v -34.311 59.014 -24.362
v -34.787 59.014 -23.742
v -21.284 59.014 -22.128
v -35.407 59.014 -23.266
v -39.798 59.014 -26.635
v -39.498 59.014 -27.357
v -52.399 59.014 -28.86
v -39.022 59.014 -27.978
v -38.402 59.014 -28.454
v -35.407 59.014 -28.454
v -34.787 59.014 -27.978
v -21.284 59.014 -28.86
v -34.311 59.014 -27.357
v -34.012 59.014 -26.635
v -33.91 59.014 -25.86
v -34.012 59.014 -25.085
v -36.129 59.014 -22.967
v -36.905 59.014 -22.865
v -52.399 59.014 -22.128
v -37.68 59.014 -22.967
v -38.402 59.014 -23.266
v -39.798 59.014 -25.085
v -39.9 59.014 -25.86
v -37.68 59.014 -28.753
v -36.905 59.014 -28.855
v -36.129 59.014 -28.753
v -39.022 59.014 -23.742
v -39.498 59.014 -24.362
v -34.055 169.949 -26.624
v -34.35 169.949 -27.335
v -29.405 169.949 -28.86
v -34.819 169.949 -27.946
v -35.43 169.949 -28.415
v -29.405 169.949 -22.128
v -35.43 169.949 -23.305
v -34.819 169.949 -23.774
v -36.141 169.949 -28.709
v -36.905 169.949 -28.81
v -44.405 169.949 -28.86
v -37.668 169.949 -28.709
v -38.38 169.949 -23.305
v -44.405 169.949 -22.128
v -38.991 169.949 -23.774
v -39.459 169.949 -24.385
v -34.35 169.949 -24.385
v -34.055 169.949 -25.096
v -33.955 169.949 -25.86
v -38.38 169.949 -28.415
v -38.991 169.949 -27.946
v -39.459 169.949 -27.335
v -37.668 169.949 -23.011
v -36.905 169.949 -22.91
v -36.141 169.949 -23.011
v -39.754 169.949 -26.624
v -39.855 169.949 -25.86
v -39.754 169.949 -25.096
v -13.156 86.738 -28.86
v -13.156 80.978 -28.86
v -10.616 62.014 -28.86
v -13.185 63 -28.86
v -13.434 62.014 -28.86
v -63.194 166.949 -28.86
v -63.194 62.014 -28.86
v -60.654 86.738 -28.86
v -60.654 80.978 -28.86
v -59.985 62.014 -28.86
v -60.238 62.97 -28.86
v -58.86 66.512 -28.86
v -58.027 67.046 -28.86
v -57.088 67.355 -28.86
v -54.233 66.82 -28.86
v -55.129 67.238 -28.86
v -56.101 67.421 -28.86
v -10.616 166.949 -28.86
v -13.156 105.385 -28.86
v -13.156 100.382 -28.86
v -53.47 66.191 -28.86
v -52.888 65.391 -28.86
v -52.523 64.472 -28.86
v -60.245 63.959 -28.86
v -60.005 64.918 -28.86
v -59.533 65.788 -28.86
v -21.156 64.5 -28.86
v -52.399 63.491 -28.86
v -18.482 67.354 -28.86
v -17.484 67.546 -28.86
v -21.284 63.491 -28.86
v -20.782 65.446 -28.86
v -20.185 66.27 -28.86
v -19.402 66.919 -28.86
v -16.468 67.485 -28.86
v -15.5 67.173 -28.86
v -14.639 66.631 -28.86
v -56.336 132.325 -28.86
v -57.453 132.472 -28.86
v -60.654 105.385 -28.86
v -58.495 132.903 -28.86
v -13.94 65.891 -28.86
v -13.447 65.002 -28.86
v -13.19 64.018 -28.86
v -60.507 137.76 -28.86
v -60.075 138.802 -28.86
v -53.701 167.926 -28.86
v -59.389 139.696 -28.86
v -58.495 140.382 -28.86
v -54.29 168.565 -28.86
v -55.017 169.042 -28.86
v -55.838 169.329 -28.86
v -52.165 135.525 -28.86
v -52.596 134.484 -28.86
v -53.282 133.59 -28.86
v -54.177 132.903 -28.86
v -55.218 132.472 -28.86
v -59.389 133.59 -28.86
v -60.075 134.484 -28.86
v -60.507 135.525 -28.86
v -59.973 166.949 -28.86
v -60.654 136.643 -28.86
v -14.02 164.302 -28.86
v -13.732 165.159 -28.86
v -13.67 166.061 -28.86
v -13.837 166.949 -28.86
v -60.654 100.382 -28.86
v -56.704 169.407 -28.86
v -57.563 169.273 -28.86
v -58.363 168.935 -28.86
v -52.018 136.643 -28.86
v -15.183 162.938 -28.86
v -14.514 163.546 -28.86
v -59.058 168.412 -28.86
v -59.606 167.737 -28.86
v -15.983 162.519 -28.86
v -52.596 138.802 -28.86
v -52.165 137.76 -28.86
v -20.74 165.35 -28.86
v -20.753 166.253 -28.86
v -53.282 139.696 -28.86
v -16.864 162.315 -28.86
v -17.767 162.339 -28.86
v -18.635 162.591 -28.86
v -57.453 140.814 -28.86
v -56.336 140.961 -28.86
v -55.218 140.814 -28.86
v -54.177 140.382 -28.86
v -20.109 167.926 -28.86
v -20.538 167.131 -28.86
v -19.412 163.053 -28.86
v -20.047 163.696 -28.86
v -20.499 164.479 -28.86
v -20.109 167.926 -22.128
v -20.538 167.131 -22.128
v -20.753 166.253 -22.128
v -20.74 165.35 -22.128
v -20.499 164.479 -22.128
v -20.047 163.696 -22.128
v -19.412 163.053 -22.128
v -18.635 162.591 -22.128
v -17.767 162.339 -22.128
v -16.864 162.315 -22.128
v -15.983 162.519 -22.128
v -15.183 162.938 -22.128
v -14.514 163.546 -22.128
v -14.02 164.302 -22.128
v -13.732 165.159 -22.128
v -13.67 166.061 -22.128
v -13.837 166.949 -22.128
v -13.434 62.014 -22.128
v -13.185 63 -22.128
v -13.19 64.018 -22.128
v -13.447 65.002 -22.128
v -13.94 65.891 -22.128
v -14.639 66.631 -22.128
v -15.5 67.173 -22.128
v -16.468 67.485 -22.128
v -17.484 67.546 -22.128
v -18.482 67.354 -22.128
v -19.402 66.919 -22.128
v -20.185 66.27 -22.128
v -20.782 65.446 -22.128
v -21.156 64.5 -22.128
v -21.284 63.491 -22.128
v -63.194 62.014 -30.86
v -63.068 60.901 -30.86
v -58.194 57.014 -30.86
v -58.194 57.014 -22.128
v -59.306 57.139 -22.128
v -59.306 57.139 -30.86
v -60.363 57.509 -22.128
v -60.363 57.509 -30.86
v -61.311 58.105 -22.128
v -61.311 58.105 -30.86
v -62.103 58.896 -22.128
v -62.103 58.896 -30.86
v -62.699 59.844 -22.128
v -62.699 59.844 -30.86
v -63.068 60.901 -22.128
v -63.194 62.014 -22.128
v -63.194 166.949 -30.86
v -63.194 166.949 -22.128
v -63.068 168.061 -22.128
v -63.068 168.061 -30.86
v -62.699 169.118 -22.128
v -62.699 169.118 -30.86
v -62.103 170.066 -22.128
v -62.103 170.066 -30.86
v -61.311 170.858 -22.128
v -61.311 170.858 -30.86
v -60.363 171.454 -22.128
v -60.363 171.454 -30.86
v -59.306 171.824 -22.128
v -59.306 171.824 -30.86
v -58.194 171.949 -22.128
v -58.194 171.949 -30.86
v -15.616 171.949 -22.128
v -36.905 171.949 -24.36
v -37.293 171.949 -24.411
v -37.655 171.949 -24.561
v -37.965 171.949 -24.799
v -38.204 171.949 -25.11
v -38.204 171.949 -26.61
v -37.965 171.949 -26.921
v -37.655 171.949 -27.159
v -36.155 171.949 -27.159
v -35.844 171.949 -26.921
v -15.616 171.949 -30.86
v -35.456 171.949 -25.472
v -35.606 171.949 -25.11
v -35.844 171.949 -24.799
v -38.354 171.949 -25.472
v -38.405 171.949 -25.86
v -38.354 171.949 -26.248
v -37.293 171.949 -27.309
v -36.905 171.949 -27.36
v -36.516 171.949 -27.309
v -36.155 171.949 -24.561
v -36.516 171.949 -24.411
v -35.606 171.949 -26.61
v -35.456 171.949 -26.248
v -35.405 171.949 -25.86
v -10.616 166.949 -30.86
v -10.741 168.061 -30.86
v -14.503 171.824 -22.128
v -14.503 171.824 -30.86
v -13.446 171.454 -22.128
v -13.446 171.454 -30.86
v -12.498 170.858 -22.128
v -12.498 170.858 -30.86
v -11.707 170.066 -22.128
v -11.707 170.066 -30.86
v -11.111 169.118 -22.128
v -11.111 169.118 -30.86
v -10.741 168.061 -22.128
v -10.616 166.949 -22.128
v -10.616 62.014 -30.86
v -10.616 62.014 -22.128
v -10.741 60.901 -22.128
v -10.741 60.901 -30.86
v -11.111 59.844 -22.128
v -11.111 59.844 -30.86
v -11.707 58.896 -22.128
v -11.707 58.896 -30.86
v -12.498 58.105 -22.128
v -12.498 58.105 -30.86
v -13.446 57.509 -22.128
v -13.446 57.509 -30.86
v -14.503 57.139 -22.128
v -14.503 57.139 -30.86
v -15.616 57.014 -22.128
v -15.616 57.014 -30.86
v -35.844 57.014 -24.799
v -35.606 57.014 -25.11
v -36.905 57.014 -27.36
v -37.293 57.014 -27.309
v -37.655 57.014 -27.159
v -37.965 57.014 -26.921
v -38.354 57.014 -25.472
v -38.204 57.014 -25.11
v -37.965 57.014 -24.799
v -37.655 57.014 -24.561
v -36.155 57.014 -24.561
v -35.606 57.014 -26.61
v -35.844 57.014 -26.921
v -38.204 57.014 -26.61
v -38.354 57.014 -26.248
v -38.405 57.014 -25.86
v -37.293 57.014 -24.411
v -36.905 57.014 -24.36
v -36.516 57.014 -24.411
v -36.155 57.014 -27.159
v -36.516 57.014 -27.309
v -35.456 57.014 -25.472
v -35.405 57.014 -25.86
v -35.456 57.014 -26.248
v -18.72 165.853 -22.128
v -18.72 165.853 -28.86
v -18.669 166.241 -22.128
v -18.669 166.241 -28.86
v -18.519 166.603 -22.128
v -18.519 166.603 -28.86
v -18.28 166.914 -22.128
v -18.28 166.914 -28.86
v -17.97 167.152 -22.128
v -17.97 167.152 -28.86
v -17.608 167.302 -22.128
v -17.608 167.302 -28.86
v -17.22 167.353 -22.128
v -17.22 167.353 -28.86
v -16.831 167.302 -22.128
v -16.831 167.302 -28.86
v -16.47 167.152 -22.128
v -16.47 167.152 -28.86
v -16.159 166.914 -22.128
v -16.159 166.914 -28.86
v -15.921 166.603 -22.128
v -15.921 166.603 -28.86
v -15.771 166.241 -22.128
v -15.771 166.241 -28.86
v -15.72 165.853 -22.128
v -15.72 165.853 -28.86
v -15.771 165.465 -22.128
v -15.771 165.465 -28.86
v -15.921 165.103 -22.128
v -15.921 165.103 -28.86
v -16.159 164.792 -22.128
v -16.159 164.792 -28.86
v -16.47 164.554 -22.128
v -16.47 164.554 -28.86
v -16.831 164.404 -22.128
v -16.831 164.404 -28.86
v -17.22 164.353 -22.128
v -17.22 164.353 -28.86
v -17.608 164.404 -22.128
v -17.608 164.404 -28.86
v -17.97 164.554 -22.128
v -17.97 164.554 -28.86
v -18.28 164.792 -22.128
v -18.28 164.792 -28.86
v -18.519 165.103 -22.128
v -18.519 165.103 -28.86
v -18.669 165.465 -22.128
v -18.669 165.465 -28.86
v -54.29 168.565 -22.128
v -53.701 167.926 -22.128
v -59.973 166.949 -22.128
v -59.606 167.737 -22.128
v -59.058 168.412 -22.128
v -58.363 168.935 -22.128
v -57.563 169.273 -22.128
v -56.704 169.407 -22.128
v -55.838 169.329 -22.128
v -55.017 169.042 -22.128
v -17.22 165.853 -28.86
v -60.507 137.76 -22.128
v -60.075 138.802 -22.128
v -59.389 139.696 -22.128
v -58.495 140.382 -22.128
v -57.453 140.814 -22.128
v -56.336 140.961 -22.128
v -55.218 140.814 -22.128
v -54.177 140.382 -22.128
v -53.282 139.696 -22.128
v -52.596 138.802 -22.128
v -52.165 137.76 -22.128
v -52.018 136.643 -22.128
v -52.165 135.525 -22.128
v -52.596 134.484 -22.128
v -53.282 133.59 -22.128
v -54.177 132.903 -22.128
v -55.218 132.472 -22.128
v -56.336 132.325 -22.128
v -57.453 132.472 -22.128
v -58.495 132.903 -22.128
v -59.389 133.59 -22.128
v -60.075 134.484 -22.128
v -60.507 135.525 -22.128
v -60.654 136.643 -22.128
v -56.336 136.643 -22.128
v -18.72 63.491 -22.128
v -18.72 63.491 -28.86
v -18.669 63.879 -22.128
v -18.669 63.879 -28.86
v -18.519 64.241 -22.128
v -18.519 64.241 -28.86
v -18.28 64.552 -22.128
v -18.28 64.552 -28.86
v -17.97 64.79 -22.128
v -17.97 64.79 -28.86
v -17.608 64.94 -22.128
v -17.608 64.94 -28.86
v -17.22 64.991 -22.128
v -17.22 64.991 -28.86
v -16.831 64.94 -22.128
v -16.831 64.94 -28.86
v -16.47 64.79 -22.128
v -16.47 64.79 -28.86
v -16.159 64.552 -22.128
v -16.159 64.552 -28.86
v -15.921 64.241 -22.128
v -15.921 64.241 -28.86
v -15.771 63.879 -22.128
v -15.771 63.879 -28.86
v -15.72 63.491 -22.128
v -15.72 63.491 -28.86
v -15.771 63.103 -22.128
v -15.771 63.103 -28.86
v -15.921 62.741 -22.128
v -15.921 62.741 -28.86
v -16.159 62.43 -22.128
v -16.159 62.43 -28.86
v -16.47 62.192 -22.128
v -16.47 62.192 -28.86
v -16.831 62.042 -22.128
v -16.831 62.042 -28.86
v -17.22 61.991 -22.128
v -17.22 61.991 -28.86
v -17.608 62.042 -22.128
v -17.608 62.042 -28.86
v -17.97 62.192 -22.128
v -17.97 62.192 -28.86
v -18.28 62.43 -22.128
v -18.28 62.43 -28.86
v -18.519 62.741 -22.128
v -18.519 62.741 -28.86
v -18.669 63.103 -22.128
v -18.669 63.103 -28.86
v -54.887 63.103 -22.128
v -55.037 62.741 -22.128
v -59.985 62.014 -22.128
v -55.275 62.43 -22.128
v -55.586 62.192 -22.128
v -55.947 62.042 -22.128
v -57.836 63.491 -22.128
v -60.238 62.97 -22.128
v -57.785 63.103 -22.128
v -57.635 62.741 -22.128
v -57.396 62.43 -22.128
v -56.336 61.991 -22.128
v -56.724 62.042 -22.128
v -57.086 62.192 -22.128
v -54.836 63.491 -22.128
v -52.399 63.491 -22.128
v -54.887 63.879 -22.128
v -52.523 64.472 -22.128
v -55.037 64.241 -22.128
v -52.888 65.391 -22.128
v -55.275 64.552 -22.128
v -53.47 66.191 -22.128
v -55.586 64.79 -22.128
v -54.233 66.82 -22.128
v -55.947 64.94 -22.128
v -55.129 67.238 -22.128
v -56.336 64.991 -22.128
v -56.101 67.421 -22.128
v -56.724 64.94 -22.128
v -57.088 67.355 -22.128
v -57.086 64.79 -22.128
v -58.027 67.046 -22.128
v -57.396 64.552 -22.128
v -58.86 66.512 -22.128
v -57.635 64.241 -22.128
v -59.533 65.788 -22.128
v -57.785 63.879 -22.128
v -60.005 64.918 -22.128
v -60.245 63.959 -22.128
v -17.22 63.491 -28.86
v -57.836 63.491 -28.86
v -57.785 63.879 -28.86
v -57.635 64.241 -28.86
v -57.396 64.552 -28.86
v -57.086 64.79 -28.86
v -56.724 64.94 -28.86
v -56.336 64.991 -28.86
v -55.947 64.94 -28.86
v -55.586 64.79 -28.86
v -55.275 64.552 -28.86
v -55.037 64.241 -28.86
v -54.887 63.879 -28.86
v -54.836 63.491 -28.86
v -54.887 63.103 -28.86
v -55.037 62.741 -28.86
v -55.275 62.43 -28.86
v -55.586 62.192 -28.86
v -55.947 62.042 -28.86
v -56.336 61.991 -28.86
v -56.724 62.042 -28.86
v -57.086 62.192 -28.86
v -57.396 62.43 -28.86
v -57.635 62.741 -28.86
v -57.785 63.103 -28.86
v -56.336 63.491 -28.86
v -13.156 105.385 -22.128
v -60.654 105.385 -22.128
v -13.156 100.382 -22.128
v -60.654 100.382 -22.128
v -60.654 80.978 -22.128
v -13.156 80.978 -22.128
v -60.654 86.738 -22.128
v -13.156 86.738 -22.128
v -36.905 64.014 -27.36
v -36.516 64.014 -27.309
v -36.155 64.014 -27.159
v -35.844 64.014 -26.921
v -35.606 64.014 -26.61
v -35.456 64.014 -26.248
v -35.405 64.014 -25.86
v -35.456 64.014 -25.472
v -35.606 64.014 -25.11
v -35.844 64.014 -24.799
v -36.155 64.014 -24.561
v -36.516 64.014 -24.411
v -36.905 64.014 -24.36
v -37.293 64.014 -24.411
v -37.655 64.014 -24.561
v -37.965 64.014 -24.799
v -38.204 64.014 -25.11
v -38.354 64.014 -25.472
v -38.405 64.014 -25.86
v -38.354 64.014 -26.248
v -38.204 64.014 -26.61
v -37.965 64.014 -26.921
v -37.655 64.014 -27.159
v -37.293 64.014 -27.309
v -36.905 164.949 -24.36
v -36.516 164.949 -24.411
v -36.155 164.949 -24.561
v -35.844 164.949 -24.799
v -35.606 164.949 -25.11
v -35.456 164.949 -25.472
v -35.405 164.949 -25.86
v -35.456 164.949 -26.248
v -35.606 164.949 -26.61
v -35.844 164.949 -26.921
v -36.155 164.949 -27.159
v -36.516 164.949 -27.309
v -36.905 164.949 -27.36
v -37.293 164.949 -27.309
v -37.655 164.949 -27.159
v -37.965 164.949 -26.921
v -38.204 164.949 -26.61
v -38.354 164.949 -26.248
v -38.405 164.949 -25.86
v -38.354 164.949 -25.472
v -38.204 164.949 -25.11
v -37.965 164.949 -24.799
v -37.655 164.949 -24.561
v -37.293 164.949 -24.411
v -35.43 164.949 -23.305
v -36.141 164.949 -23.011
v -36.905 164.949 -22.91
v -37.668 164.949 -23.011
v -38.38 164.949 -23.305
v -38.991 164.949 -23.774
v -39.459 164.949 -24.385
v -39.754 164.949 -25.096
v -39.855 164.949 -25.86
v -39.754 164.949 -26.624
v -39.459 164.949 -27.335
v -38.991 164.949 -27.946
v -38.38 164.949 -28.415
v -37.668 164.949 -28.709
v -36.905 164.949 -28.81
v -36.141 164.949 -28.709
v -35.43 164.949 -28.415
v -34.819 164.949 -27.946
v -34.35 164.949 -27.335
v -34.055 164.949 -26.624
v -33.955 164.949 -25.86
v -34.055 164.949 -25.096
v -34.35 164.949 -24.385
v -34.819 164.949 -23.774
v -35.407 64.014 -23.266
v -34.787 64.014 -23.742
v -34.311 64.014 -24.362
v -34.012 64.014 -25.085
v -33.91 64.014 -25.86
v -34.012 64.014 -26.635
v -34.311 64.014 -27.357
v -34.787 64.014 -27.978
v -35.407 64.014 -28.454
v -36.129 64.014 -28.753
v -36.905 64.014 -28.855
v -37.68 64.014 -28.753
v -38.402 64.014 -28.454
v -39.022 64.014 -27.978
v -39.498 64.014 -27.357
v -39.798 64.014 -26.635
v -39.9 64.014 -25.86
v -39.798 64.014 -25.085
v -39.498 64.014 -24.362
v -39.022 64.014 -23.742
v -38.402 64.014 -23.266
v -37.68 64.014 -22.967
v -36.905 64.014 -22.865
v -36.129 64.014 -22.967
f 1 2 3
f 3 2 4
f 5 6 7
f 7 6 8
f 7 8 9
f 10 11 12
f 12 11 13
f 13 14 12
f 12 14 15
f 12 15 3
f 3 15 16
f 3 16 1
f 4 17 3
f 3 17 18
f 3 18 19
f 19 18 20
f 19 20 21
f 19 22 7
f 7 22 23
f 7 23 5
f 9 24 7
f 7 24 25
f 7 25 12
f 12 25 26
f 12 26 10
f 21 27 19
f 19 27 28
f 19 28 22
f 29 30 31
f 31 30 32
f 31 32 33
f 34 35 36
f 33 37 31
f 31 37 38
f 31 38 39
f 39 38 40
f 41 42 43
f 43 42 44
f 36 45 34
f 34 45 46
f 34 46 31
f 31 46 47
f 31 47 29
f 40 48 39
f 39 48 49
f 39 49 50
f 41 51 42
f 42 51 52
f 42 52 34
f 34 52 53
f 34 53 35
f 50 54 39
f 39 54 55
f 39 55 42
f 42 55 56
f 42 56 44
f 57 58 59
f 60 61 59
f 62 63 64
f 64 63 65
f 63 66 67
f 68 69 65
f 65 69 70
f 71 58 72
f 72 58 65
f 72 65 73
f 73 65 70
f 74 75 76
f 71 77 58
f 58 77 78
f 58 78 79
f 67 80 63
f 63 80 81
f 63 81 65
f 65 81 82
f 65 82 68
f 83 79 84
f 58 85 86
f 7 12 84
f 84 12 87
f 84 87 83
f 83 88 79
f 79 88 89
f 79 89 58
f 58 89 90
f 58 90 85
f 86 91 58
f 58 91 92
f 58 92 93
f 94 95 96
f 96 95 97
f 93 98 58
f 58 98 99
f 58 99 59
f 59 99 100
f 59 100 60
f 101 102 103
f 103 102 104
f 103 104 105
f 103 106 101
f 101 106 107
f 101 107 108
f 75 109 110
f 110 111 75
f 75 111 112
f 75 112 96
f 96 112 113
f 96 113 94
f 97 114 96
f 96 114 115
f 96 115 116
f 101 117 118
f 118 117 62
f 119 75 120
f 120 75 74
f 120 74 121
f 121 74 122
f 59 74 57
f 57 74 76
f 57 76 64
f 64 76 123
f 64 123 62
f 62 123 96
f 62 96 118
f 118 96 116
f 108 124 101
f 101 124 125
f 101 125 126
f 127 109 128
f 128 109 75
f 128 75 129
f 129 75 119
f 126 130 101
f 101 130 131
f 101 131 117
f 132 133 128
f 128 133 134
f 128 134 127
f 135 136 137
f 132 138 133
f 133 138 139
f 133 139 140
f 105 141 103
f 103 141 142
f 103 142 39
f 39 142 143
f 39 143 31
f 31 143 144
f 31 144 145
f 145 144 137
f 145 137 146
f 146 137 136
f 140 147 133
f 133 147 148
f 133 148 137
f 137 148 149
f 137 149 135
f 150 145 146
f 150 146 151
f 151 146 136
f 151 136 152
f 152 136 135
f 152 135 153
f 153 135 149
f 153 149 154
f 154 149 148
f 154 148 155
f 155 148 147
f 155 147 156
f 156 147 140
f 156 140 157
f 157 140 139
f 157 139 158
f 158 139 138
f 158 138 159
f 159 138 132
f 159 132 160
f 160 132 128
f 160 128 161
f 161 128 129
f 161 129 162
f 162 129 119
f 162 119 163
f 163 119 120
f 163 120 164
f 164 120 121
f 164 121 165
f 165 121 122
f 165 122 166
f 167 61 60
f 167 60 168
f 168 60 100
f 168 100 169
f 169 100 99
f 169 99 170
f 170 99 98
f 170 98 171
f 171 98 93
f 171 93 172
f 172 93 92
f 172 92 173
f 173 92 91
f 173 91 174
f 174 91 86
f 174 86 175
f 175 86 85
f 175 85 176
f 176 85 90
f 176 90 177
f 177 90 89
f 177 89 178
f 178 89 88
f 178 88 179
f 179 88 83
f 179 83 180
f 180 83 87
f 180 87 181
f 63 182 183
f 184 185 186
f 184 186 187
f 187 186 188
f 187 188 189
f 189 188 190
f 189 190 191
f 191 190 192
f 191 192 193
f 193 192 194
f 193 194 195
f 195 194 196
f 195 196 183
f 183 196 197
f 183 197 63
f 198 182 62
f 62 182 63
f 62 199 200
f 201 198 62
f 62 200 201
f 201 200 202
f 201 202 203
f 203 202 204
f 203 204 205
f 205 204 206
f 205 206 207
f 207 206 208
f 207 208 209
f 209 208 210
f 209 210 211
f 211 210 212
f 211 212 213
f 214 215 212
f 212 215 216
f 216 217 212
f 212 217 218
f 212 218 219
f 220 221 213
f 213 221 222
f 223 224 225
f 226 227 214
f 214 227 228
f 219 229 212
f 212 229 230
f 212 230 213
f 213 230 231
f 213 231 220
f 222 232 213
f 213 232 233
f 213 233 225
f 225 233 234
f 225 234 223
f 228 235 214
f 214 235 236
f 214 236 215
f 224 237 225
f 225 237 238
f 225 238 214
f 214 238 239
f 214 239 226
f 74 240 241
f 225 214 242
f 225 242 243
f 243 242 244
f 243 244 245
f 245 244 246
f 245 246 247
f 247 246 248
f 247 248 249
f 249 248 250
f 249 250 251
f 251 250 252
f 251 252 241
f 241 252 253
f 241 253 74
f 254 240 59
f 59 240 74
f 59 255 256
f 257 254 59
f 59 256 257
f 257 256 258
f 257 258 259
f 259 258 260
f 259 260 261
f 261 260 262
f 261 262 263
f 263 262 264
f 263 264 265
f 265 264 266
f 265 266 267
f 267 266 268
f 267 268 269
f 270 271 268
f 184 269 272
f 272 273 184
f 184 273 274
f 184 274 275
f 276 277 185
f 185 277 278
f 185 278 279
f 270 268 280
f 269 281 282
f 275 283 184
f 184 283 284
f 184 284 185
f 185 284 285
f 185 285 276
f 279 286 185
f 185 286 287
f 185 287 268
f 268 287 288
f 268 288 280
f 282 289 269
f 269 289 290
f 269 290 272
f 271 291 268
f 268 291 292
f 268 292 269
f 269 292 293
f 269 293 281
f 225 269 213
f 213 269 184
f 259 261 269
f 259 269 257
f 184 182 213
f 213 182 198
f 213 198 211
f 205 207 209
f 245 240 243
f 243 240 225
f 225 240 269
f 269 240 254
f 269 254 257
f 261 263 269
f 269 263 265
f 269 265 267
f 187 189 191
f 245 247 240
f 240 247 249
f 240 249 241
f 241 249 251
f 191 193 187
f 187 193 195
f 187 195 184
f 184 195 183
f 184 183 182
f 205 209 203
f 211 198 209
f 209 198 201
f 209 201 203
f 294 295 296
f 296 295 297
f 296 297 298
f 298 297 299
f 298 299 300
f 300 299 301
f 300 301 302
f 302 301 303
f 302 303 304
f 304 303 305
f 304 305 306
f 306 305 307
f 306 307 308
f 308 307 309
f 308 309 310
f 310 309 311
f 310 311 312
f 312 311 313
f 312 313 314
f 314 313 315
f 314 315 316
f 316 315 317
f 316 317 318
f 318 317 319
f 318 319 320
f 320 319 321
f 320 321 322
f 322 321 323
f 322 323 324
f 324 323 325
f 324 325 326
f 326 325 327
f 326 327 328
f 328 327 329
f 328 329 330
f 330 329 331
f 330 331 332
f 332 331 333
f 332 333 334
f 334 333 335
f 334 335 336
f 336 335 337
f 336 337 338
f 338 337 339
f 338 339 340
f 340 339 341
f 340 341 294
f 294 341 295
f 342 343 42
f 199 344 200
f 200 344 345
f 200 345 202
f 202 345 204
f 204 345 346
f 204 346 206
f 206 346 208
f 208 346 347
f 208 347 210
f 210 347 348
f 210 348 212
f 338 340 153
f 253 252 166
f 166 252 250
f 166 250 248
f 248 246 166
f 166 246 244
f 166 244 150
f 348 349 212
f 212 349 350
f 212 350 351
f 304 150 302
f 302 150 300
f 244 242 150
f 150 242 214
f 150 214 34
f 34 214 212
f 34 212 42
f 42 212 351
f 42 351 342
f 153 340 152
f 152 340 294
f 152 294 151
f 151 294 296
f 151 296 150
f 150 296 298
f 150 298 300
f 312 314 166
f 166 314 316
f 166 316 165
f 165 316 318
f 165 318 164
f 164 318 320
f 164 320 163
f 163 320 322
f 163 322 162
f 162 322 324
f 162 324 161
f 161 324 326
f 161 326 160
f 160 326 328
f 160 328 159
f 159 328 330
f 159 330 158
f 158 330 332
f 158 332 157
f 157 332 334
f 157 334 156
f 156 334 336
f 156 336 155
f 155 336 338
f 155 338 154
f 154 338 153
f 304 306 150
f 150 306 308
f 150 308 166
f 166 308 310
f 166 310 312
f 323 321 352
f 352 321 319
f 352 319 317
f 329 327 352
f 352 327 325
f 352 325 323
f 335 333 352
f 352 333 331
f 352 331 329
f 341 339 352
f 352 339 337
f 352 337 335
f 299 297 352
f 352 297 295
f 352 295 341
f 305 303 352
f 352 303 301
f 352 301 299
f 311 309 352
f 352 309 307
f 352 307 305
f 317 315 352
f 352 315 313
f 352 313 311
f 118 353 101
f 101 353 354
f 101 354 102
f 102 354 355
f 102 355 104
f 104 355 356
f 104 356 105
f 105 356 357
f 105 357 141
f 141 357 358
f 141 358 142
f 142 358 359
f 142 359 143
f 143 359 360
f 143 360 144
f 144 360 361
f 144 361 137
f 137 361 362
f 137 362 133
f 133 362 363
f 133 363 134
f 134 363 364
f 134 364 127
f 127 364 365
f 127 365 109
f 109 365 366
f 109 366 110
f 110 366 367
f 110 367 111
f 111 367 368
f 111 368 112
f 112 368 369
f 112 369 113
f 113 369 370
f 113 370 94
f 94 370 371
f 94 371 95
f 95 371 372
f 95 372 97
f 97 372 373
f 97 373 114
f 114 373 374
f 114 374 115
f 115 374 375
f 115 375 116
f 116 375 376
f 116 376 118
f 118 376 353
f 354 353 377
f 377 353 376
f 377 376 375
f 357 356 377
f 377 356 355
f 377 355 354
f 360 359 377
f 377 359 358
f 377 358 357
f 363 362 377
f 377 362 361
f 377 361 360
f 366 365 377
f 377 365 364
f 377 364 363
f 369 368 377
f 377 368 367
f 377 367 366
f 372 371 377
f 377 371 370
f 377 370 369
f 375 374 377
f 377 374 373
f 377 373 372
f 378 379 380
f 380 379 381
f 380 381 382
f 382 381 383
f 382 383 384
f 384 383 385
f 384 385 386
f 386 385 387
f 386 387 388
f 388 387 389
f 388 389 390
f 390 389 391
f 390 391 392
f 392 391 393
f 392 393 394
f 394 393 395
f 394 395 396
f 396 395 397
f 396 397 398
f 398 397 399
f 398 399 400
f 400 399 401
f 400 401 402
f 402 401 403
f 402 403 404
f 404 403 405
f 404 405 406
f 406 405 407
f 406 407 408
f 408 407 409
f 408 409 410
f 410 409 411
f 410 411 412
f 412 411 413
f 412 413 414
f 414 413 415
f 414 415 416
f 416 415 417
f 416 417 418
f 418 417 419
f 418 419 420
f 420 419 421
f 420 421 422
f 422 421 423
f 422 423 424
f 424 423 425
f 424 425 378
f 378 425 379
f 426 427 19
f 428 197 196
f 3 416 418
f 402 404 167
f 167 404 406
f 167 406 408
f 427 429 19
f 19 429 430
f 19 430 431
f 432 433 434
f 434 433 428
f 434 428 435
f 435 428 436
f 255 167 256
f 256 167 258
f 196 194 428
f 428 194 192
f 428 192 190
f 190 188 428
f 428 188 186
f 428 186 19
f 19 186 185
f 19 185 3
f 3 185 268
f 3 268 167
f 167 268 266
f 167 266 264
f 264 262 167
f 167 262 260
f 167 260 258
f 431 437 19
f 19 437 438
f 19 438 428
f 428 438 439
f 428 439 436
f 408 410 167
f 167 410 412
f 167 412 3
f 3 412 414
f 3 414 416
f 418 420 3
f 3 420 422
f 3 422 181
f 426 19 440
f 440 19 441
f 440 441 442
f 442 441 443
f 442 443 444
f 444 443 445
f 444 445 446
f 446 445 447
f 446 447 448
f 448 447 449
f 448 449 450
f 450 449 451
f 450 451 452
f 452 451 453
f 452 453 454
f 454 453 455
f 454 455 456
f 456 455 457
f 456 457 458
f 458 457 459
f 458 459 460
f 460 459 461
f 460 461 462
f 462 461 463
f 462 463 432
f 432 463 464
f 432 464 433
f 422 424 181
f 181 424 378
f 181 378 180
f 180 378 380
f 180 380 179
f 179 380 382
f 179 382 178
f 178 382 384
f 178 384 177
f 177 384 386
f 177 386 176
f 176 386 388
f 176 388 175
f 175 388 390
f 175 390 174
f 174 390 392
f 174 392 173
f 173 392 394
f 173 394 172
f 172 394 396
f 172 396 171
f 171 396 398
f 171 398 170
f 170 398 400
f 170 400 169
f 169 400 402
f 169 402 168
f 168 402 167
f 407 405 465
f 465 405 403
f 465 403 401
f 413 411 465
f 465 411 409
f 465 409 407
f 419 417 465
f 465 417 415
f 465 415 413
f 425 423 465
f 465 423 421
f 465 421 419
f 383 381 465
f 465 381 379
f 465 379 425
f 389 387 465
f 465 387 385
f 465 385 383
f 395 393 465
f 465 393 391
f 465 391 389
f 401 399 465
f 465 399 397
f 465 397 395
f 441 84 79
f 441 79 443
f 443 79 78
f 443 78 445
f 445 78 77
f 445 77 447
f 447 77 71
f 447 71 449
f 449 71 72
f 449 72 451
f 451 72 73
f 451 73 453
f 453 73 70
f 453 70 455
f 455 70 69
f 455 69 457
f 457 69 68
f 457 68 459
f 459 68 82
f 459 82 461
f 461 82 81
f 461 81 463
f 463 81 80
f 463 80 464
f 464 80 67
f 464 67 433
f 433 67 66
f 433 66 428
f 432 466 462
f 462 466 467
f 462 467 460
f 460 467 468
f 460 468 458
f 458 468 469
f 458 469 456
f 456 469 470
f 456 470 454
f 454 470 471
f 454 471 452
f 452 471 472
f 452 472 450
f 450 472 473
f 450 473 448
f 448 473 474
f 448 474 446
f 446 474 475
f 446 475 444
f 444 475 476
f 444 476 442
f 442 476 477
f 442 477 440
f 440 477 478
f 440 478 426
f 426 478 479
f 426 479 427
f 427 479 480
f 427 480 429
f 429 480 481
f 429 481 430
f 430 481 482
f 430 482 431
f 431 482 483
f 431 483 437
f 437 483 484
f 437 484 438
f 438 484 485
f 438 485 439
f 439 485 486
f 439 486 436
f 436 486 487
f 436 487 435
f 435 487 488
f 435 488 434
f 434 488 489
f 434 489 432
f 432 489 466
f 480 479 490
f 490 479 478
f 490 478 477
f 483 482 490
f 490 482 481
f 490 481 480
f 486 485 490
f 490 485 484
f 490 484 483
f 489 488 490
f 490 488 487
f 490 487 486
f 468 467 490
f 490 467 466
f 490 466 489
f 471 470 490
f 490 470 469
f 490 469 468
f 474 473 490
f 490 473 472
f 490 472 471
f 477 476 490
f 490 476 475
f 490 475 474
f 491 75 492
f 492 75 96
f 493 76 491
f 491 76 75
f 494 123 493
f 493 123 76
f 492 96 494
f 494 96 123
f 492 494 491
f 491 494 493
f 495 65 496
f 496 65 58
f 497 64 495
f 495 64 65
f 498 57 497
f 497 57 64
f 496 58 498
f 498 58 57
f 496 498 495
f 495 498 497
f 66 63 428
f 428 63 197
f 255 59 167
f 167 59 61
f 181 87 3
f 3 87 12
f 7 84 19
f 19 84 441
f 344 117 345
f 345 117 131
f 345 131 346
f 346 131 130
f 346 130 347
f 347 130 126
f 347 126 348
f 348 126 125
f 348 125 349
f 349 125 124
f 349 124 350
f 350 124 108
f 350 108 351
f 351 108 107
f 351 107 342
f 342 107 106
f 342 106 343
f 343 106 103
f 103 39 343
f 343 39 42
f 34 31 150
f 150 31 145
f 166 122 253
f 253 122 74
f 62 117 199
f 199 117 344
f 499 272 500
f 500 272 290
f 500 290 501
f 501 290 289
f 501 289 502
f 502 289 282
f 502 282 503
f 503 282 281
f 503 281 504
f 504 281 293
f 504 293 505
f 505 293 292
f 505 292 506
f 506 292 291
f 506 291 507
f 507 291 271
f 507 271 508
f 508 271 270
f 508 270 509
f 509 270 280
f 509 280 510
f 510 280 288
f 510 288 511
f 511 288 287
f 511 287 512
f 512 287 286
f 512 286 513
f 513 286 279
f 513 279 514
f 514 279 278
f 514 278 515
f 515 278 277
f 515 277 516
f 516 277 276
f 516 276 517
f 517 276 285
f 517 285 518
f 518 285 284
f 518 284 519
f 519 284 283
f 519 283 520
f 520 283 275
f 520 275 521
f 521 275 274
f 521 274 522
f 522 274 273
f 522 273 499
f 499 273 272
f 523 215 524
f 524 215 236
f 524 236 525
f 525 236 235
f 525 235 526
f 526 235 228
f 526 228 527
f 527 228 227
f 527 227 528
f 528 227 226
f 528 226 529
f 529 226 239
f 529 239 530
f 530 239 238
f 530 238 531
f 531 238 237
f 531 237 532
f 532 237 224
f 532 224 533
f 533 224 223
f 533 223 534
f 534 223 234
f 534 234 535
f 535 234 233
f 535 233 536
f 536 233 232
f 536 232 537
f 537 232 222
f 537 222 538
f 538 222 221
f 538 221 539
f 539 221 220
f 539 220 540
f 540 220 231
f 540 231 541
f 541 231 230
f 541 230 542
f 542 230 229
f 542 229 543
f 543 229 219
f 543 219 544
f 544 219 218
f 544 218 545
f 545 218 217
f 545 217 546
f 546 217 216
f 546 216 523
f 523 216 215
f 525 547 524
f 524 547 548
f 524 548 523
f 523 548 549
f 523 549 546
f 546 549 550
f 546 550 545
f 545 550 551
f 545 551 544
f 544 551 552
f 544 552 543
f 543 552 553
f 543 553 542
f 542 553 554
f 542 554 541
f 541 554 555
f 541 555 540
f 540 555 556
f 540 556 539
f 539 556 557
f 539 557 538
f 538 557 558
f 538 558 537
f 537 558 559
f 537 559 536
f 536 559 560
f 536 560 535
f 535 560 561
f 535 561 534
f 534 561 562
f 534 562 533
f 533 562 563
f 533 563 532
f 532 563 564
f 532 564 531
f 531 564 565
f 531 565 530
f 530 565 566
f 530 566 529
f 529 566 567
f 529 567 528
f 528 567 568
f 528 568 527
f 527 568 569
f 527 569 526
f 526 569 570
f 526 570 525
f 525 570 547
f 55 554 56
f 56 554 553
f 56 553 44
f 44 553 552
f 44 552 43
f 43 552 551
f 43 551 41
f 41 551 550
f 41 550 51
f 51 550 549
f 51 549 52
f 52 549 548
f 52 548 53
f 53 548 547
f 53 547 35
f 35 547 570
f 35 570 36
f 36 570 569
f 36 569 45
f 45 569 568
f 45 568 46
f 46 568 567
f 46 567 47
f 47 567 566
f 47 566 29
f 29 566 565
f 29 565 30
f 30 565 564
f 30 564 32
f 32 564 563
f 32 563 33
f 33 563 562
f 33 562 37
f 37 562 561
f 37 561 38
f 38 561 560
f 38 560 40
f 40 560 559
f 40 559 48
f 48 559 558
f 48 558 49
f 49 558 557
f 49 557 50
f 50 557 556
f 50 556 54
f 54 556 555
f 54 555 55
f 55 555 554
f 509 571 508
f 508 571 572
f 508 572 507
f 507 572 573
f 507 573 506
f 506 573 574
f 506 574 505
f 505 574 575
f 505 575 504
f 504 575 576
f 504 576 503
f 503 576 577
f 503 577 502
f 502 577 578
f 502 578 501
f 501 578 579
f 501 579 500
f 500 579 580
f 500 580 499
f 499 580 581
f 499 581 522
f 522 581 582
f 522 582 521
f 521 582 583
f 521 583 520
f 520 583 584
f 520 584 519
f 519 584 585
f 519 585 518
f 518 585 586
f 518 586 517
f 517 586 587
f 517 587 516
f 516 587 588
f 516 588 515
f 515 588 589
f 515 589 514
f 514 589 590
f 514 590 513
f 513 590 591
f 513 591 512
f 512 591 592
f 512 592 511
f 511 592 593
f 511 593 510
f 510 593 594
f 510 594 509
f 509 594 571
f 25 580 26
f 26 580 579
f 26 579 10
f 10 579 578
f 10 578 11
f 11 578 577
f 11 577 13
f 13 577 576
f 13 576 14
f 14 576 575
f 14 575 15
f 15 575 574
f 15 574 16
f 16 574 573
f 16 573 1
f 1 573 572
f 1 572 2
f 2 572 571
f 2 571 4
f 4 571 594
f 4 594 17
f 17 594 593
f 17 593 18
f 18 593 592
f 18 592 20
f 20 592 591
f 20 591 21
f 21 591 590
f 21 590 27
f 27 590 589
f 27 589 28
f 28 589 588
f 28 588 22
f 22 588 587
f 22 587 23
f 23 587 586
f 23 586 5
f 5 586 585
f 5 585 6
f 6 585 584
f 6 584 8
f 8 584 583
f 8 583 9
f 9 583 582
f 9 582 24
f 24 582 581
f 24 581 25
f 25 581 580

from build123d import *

# Parameters (mm, degrees)
BOSS_EXTRUDE1_DEPTH = 2
SKETCH2_R           = 3.556
SKETCH2_R_2         = 1.5
SKETCH2_R_3         = 4.318
SKETCH2_R_4         = 4.064
SKETCH2_R_5         = 3.937
SKETCH2_W           = 47.498
SKETCH2_H           = 5.002835781
SKETCH2_H_2         = 5.760841202
BOSS_EXTRUDE2_DEPTH = 6.732423
BOSS_EXTRUDE3_DEPTH = 6.732423
SKETCH4_R           = 1.5
CUT_EXTRUDE1_DEPTH  = 10
SKETCH5_R           = 1.5
CUT_EXTRUDE2_DEPTH  = 10
SKETCH6_R           = 2.95
SKETCH6_R_2         = 1.5
BOSS_EXTRUDE5_DEPTH = 5
SKETCH7_R           = 2.995
SKETCH7_R_2         = 1.5
BOSS_EXTRUDE6_DEPTH = 5


with BuildPart() as part:
    # Sketch1 → Boss-Extrude1 (new body)
    with BuildSketch(Plane.XY.offset(-28.86000007)):
        with BuildLine():
            Line((-10.615664433, 166.948874967), (-10.615664433, 62.013874967))
            ThreePointArc((-10.615664433, 62.013874967), (-12.080130527, 58.478341061), (-15.615664433, 57.013874967))
            Line((-15.615664433, 57.013874967), (-58.193664433, 57.013874967))
            ThreePointArc((-58.193664433, 57.013874967), (-61.729198339, 58.478341061), (-63.193664433, 62.013874967))
            Line((-63.193664433, 62.013874967), (-63.193664433, 166.948874967))
            ThreePointArc((-63.193664433, 166.948874967), (-61.729198339, 170.484408873), (-58.193664433, 171.948874967))
            Line((-58.193664433, 171.948874967), (-15.615664433, 171.948874967))
            ThreePointArc((-15.615664433, 171.948874967), (-12.080130527, 170.484408873), (-10.615664433, 166.948874967))
        make_face()
    extrude(amount=-BOSS_EXTRUDE1_DEPTH)

    # Sketch2 → Boss-Extrude2 (add)
    with BuildSketch(Plane.XY.offset(-28.86000007)):
        with Locations((-17.219664433, 165.852874967)):
            Circle(SKETCH2_R)
        with Locations((-17.219664433, 165.852874967)):
            Circle(SKETCH2_R_2, mode=Mode.SUBTRACT)
        with Locations((-56.335664433, 136.642874967)):
            Circle(SKETCH2_R_3)
        with Locations((-17.219664433, 63.490874967)):
            Circle(SKETCH2_R_4)
        with Locations((-17.219664433, 63.490874967)):
            Circle(SKETCH2_R_2, mode=Mode.SUBTRACT)
        with Locations((-56.335664433, 63.490874967)):
            Circle(SKETCH2_R_5)
        with Locations((-56.335664433, 63.490874967)):
            Circle(SKETCH2_R_2, mode=Mode.SUBTRACT)
        with Locations((-36.904664433, 102.883892021)):
            Rectangle(SKETCH2_W, SKETCH2_H)
        with Locations((-36.904664433, 83.857955944)):
            Rectangle(SKETCH2_W, SKETCH2_H_2)
    extrude(amount=BOSS_EXTRUDE2_DEPTH)

    # Sketch3 → Boss-Extrude3 (add)
    with BuildSketch(Plane.XY.offset(-28.86000007)):
        with BuildLine():
            Line((-29.404664433, 169.948874967), (-44.404664433, 169.948874967))
            Line((-44.404664433, 169.948874967), (-53.70076371, 167.92637168))
            ThreePointArc((-53.70076371, 167.92637168), (-57.137277803, 169.366456558), (-59.972550774, 166.948874967))
            Line((-59.972550774, 166.948874967), (-61.193664433, 166.948874967))
            Line((-61.193664433, 166.948874967), (-63.193664433, 166.948874967))
            ThreePointArc((-63.193664433, 166.948874967), (-61.729198339, 170.484408873), (-58.193664433, 171.948874967))
            Line((-58.193664433, 171.948874967), (-44.404664433, 171.948874967))
            Line((-44.404664433, 171.948874967), (-29.404664433, 171.948874967))
            Line((-29.404664433, 171.948874967), (-15.615664433, 171.948874967))
            ThreePointArc((-15.615664433, 171.948874967), (-12.080130527, 170.484408873), (-10.615664433, 166.948874967))
            Line((-10.615664433, 166.948874967), (-12.615664433, 166.948874967))
            Line((-12.615664433, 166.948874967), (-13.836778091, 166.948874967))
            ThreePointArc((-13.836778091, 166.948874967), (-16.672051062, 169.366456558), (-20.108565155, 167.92637168))
            Line((-20.108565155, 167.92637168), (-29.404664433, 169.948874967))
        make_face()
        with BuildLine():
            Line((-58.193664433, 57.013874967), (-15.615664433, 57.013874967))
            ThreePointArc((-15.615664433, 57.013874967), (-12.080130527, 58.478341061), (-10.615664433, 62.013874967))
            Line((-10.615664433, 62.013874967), (-12.615664433, 62.013874967))
            Line((-12.615664433, 62.013874967), (-13.433562612, 62.013874967))
            ThreePointArc((-13.433562612, 62.013874967), (-17.971122415, 59.496953723), (-21.283664433, 63.490874967))
            Line((-21.283664433, 63.490874967), (-21.283664433, 59.013874967))
            Line((-21.283664433, 59.013874967), (-52.398664433, 59.013874967))
            Line((-52.398664433, 59.013874967), (-52.398664433, 63.490874967))
            ThreePointArc((-52.398664433, 63.490874967), (-55.583298569, 59.626432626), (-59.985108226, 62.013874967))
            Line((-59.985108226, 62.013874967), (-61.193664433, 62.013874967))
            Line((-61.193664433, 62.013874967), (-63.193664433, 62.013874967))
            ThreePointArc((-63.193664433, 62.013874967), (-61.729198339, 58.478341061), (-58.193664433, 57.013874967))
        make_face()
    extrude(amount=BOSS_EXTRUDE3_DEPTH)

    # Sketch4 → Cut-Extrude1 (cut)
    with BuildSketch(Plane.XZ.offset(-57.013874967)):
        with Locations((-36.904664433, -25.86000007)):
            Circle(SKETCH4_R)
    extrude(amount=-CUT_EXTRUDE1_DEPTH, mode=Mode.SUBTRACT)

    # Sketch5 → Cut-Extrude2 (cut)
    with BuildSketch(Plane(origin=(0, 171.948874967, 0), x_dir=(1, 0, 0), z_dir=(0, 1, 0))):
        with Locations((-36.904664433, 25.86000007)):
            Circle(SKETCH5_R)
    extrude(amount=-CUT_EXTRUDE2_DEPTH, mode=Mode.SUBTRACT)

    # Sketch6 → Boss-Extrude5 (add)
    with BuildSketch(Plane.XZ.offset(-169.948874967)):
        with Locations((-36.904664433, -25.86000007)):
            Circle(SKETCH6_R)
        with Locations((-36.904664433, -25.86000007)):
            Circle(SKETCH6_R_2, mode=Mode.SUBTRACT)
    extrude(amount=BOSS_EXTRUDE5_DEPTH)

    # Sketch7 → Boss-Extrude6 (add)
    with BuildSketch(Plane(origin=(0, 59.013874967, 0), x_dir=(1, 0, 0), z_dir=(0, 1, 0))):
        with Locations((-36.904664433, 25.86000007)):
            Circle(SKETCH7_R)
        with Locations((-36.904664433, 25.86000007)):
            Circle(SKETCH7_R_2, mode=Mode.SUBTRACT)
    extrude(amount=BOSS_EXTRUDE6_DEPTH)


solid = part.part
